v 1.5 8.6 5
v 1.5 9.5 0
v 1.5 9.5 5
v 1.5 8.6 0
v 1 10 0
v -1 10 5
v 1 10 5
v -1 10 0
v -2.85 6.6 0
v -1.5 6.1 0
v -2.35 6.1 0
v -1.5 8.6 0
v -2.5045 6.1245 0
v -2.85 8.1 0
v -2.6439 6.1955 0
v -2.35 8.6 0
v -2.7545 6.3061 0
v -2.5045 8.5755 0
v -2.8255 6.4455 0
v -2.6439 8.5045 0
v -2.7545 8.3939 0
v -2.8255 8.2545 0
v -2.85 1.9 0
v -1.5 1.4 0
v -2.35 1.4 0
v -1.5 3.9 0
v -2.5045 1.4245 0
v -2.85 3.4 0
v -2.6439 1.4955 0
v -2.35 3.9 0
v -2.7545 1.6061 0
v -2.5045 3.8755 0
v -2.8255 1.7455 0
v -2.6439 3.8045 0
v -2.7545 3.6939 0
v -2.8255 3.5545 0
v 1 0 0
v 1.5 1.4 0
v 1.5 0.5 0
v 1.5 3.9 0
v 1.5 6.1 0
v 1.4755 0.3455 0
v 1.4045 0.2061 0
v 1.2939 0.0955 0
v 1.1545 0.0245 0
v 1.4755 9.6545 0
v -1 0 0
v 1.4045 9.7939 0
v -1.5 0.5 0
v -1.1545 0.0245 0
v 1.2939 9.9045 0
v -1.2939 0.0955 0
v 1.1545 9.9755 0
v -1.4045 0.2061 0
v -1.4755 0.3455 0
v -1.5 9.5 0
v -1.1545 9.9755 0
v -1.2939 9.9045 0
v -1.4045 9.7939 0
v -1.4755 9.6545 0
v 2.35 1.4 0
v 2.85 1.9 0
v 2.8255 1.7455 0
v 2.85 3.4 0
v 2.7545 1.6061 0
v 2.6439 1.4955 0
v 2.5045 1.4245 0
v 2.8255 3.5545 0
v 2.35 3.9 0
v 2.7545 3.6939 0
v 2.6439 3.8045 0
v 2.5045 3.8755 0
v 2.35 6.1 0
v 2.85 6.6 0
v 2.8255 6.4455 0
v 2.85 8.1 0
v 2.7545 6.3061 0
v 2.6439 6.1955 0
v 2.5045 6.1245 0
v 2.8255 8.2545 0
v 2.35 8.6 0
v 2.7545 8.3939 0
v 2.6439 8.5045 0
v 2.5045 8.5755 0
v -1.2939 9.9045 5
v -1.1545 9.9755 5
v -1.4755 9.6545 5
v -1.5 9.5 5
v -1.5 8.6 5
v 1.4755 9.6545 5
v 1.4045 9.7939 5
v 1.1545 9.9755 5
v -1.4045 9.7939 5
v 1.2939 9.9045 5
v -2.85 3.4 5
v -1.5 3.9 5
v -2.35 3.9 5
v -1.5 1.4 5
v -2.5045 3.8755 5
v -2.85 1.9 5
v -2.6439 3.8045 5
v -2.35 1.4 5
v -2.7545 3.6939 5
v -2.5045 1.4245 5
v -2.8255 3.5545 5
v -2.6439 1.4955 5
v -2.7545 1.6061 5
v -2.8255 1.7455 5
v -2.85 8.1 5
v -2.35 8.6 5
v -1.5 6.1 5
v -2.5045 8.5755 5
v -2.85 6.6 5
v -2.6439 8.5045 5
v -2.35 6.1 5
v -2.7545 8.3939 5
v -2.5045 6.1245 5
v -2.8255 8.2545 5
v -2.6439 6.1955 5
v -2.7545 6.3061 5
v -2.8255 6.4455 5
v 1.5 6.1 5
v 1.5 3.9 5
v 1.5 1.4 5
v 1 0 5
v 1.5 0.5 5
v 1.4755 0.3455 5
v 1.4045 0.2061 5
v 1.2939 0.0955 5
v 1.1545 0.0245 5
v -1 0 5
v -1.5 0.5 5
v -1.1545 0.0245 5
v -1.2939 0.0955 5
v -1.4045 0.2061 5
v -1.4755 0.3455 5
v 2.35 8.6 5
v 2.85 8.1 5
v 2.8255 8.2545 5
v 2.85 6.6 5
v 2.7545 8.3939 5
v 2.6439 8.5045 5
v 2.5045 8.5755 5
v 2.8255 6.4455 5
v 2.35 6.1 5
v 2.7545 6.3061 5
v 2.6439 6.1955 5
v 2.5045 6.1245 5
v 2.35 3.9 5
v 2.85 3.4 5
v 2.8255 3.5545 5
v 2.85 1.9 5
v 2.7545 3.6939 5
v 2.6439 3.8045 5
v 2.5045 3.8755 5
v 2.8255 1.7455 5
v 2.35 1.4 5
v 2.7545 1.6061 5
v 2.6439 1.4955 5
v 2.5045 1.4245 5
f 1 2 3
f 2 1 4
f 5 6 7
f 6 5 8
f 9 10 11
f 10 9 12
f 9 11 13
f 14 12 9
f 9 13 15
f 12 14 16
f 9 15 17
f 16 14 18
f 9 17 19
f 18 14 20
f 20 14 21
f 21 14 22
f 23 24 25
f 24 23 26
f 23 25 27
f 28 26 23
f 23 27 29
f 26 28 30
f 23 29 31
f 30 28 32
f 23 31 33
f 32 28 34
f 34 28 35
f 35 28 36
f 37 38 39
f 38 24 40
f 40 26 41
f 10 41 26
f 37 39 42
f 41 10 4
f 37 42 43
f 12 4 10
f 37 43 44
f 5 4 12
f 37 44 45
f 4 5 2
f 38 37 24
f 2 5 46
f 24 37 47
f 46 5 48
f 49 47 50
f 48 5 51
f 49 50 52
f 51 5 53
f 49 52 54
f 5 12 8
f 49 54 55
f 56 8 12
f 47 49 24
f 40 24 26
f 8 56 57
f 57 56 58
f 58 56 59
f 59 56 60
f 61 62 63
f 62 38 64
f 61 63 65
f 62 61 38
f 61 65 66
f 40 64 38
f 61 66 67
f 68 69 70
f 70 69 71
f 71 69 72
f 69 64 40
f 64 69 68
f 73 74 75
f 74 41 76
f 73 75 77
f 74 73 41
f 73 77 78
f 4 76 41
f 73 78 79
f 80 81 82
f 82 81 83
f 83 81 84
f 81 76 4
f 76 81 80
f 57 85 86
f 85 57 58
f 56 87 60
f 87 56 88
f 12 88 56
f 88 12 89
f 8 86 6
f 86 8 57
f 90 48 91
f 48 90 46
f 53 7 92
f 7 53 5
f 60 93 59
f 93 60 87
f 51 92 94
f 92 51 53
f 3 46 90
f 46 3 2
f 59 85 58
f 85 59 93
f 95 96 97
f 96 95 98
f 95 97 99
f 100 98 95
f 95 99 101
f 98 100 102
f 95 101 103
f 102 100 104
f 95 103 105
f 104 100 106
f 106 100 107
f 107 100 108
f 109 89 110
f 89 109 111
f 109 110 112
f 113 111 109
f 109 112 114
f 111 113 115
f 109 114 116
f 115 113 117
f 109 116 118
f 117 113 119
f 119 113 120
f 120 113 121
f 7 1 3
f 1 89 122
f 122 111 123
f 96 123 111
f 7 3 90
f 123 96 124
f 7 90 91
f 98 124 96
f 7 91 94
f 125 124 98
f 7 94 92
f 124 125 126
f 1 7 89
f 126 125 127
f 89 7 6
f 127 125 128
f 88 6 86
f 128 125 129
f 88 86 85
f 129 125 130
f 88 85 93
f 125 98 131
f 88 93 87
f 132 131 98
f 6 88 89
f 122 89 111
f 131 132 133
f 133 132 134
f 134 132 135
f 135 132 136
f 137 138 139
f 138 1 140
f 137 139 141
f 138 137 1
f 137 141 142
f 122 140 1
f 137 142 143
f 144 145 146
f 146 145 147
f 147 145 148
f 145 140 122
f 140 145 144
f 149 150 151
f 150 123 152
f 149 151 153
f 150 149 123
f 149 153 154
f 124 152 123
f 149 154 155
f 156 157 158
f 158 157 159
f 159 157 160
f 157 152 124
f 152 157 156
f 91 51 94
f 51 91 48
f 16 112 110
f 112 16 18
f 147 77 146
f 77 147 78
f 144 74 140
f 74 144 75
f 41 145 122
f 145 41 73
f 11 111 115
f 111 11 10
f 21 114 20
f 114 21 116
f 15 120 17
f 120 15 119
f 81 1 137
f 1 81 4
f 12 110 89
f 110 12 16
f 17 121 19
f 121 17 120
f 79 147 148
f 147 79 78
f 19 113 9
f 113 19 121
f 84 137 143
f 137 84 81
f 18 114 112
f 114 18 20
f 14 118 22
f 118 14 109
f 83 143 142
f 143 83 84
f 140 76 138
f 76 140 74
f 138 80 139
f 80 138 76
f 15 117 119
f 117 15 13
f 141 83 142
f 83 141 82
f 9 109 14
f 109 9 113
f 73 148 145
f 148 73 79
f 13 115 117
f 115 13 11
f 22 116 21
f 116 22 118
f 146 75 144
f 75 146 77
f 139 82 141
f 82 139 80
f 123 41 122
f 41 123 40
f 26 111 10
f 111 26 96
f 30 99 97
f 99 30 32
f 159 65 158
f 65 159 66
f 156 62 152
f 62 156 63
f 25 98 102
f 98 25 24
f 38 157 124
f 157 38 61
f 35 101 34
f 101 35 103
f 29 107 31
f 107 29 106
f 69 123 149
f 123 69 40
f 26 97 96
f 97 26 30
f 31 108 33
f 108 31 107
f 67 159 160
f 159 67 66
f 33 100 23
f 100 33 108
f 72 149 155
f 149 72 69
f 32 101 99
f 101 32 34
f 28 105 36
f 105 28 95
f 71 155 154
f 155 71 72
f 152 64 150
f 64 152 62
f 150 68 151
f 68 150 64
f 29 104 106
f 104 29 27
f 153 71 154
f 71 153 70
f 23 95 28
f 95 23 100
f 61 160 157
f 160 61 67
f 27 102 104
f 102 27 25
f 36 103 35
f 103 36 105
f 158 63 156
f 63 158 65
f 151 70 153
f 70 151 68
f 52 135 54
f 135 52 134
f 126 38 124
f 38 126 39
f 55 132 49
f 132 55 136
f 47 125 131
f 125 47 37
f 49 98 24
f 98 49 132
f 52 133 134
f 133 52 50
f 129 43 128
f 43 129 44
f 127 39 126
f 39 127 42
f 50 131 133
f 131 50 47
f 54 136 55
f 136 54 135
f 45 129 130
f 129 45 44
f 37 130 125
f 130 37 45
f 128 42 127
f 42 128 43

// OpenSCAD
//makerbeam parallel joiner

use <fillets_and_rounds.scad>


module joiner(h=5){
	add_rounds(fn=20,R=0.5,axis="z")union(){translate([-1.5,0])cube([3,10,h]);
	translate([-5.7/2,1.4])cube([5.7,2.5,h]);
	translate([-5.7/2,10-3.9])cube([5.7,2.5,h]);}
}//joiner

joiner();
